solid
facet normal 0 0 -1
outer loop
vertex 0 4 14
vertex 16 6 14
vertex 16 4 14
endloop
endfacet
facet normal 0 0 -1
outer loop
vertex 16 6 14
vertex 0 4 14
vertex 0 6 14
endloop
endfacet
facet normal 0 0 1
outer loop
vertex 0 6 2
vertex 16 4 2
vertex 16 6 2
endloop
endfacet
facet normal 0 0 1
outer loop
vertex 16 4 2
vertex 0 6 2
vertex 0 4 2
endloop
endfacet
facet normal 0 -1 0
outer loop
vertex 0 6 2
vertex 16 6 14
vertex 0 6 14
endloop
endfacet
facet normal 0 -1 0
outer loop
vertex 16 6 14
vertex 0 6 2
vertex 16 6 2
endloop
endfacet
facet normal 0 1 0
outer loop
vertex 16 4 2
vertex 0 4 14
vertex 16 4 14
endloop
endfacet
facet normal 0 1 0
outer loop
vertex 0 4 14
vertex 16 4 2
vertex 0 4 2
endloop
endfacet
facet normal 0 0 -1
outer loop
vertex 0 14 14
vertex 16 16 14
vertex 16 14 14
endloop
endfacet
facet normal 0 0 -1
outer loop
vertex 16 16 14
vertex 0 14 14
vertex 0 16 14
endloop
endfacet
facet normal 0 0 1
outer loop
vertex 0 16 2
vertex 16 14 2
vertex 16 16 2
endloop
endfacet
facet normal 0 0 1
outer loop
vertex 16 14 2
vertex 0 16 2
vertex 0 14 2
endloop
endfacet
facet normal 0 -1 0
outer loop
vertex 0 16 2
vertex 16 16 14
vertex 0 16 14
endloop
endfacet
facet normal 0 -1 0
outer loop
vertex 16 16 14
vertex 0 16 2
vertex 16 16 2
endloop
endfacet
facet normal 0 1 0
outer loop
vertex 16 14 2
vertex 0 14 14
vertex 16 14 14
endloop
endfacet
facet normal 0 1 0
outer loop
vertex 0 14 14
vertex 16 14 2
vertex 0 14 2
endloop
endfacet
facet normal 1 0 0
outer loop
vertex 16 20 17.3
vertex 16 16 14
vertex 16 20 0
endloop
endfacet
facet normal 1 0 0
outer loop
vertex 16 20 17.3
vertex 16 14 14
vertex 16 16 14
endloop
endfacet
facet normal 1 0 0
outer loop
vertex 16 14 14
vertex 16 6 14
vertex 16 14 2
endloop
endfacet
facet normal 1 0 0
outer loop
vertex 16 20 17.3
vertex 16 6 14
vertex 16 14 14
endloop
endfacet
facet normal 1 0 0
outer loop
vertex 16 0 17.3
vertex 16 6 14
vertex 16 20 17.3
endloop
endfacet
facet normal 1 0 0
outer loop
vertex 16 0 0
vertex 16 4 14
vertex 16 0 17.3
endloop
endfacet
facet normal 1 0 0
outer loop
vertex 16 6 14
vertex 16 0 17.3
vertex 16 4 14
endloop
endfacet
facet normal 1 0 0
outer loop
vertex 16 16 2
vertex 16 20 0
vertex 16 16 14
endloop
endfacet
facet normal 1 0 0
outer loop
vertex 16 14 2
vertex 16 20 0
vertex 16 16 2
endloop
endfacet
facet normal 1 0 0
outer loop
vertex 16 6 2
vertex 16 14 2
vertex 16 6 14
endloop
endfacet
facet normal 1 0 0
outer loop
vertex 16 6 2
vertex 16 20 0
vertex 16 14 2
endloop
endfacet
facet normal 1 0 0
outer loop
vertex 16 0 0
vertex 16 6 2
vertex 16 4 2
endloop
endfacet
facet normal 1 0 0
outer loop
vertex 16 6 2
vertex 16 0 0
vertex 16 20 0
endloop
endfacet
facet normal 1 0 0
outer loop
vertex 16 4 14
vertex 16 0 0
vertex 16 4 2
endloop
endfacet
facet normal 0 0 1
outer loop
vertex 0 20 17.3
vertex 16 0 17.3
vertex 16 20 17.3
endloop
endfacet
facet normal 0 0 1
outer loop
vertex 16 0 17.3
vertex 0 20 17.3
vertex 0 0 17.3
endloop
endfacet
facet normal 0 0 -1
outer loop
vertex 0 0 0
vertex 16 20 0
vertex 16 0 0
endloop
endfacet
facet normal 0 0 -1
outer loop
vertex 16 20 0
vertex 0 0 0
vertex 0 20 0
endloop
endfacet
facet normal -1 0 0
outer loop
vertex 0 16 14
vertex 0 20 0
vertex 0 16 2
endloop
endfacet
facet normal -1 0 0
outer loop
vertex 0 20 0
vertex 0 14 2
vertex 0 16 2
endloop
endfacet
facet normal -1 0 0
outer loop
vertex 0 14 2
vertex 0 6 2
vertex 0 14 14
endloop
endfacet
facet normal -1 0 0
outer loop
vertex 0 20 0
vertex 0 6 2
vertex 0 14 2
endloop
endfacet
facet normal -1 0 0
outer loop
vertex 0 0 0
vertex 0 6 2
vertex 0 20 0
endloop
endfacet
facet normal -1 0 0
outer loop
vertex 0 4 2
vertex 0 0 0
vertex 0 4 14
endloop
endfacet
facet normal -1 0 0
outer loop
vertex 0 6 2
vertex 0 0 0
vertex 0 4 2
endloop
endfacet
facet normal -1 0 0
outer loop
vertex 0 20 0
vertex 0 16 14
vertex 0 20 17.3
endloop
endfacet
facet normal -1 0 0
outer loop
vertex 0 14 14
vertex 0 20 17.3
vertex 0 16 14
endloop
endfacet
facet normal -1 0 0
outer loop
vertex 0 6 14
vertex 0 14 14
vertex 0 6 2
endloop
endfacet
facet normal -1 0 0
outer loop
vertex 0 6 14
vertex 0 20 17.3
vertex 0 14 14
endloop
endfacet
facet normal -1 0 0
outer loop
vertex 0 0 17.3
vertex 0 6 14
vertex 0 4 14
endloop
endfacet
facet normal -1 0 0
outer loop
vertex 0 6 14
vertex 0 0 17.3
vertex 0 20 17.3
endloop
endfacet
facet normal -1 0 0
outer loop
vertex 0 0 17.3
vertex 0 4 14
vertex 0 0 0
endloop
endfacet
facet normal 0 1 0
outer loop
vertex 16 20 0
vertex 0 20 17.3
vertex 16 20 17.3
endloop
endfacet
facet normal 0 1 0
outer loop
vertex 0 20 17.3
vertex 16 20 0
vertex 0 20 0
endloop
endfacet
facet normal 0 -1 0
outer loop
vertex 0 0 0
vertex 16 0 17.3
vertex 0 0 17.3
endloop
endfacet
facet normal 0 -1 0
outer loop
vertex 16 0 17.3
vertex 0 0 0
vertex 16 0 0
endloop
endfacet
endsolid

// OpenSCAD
// Pinch pad (print 2, TPU 95A). Drops into the pocket in the platen under each
// feed roller; its top stands 0.3 mm above the paper plane, so the roller
// squeezes the paper against it.

include <common.scad>

pad_w = roller_l + 4;
pad_d = 20;

difference() {
    cube([pad_w, pad_d, paper_z + 0.3 - base_t]);
    // relief slots so the top flexes rather than the whole block
    for (y = [4, pad_d - 6]) translate([-1, y, 2]) cube([pad_w + 2, 2, paper_z - base_t - 5]);
}
